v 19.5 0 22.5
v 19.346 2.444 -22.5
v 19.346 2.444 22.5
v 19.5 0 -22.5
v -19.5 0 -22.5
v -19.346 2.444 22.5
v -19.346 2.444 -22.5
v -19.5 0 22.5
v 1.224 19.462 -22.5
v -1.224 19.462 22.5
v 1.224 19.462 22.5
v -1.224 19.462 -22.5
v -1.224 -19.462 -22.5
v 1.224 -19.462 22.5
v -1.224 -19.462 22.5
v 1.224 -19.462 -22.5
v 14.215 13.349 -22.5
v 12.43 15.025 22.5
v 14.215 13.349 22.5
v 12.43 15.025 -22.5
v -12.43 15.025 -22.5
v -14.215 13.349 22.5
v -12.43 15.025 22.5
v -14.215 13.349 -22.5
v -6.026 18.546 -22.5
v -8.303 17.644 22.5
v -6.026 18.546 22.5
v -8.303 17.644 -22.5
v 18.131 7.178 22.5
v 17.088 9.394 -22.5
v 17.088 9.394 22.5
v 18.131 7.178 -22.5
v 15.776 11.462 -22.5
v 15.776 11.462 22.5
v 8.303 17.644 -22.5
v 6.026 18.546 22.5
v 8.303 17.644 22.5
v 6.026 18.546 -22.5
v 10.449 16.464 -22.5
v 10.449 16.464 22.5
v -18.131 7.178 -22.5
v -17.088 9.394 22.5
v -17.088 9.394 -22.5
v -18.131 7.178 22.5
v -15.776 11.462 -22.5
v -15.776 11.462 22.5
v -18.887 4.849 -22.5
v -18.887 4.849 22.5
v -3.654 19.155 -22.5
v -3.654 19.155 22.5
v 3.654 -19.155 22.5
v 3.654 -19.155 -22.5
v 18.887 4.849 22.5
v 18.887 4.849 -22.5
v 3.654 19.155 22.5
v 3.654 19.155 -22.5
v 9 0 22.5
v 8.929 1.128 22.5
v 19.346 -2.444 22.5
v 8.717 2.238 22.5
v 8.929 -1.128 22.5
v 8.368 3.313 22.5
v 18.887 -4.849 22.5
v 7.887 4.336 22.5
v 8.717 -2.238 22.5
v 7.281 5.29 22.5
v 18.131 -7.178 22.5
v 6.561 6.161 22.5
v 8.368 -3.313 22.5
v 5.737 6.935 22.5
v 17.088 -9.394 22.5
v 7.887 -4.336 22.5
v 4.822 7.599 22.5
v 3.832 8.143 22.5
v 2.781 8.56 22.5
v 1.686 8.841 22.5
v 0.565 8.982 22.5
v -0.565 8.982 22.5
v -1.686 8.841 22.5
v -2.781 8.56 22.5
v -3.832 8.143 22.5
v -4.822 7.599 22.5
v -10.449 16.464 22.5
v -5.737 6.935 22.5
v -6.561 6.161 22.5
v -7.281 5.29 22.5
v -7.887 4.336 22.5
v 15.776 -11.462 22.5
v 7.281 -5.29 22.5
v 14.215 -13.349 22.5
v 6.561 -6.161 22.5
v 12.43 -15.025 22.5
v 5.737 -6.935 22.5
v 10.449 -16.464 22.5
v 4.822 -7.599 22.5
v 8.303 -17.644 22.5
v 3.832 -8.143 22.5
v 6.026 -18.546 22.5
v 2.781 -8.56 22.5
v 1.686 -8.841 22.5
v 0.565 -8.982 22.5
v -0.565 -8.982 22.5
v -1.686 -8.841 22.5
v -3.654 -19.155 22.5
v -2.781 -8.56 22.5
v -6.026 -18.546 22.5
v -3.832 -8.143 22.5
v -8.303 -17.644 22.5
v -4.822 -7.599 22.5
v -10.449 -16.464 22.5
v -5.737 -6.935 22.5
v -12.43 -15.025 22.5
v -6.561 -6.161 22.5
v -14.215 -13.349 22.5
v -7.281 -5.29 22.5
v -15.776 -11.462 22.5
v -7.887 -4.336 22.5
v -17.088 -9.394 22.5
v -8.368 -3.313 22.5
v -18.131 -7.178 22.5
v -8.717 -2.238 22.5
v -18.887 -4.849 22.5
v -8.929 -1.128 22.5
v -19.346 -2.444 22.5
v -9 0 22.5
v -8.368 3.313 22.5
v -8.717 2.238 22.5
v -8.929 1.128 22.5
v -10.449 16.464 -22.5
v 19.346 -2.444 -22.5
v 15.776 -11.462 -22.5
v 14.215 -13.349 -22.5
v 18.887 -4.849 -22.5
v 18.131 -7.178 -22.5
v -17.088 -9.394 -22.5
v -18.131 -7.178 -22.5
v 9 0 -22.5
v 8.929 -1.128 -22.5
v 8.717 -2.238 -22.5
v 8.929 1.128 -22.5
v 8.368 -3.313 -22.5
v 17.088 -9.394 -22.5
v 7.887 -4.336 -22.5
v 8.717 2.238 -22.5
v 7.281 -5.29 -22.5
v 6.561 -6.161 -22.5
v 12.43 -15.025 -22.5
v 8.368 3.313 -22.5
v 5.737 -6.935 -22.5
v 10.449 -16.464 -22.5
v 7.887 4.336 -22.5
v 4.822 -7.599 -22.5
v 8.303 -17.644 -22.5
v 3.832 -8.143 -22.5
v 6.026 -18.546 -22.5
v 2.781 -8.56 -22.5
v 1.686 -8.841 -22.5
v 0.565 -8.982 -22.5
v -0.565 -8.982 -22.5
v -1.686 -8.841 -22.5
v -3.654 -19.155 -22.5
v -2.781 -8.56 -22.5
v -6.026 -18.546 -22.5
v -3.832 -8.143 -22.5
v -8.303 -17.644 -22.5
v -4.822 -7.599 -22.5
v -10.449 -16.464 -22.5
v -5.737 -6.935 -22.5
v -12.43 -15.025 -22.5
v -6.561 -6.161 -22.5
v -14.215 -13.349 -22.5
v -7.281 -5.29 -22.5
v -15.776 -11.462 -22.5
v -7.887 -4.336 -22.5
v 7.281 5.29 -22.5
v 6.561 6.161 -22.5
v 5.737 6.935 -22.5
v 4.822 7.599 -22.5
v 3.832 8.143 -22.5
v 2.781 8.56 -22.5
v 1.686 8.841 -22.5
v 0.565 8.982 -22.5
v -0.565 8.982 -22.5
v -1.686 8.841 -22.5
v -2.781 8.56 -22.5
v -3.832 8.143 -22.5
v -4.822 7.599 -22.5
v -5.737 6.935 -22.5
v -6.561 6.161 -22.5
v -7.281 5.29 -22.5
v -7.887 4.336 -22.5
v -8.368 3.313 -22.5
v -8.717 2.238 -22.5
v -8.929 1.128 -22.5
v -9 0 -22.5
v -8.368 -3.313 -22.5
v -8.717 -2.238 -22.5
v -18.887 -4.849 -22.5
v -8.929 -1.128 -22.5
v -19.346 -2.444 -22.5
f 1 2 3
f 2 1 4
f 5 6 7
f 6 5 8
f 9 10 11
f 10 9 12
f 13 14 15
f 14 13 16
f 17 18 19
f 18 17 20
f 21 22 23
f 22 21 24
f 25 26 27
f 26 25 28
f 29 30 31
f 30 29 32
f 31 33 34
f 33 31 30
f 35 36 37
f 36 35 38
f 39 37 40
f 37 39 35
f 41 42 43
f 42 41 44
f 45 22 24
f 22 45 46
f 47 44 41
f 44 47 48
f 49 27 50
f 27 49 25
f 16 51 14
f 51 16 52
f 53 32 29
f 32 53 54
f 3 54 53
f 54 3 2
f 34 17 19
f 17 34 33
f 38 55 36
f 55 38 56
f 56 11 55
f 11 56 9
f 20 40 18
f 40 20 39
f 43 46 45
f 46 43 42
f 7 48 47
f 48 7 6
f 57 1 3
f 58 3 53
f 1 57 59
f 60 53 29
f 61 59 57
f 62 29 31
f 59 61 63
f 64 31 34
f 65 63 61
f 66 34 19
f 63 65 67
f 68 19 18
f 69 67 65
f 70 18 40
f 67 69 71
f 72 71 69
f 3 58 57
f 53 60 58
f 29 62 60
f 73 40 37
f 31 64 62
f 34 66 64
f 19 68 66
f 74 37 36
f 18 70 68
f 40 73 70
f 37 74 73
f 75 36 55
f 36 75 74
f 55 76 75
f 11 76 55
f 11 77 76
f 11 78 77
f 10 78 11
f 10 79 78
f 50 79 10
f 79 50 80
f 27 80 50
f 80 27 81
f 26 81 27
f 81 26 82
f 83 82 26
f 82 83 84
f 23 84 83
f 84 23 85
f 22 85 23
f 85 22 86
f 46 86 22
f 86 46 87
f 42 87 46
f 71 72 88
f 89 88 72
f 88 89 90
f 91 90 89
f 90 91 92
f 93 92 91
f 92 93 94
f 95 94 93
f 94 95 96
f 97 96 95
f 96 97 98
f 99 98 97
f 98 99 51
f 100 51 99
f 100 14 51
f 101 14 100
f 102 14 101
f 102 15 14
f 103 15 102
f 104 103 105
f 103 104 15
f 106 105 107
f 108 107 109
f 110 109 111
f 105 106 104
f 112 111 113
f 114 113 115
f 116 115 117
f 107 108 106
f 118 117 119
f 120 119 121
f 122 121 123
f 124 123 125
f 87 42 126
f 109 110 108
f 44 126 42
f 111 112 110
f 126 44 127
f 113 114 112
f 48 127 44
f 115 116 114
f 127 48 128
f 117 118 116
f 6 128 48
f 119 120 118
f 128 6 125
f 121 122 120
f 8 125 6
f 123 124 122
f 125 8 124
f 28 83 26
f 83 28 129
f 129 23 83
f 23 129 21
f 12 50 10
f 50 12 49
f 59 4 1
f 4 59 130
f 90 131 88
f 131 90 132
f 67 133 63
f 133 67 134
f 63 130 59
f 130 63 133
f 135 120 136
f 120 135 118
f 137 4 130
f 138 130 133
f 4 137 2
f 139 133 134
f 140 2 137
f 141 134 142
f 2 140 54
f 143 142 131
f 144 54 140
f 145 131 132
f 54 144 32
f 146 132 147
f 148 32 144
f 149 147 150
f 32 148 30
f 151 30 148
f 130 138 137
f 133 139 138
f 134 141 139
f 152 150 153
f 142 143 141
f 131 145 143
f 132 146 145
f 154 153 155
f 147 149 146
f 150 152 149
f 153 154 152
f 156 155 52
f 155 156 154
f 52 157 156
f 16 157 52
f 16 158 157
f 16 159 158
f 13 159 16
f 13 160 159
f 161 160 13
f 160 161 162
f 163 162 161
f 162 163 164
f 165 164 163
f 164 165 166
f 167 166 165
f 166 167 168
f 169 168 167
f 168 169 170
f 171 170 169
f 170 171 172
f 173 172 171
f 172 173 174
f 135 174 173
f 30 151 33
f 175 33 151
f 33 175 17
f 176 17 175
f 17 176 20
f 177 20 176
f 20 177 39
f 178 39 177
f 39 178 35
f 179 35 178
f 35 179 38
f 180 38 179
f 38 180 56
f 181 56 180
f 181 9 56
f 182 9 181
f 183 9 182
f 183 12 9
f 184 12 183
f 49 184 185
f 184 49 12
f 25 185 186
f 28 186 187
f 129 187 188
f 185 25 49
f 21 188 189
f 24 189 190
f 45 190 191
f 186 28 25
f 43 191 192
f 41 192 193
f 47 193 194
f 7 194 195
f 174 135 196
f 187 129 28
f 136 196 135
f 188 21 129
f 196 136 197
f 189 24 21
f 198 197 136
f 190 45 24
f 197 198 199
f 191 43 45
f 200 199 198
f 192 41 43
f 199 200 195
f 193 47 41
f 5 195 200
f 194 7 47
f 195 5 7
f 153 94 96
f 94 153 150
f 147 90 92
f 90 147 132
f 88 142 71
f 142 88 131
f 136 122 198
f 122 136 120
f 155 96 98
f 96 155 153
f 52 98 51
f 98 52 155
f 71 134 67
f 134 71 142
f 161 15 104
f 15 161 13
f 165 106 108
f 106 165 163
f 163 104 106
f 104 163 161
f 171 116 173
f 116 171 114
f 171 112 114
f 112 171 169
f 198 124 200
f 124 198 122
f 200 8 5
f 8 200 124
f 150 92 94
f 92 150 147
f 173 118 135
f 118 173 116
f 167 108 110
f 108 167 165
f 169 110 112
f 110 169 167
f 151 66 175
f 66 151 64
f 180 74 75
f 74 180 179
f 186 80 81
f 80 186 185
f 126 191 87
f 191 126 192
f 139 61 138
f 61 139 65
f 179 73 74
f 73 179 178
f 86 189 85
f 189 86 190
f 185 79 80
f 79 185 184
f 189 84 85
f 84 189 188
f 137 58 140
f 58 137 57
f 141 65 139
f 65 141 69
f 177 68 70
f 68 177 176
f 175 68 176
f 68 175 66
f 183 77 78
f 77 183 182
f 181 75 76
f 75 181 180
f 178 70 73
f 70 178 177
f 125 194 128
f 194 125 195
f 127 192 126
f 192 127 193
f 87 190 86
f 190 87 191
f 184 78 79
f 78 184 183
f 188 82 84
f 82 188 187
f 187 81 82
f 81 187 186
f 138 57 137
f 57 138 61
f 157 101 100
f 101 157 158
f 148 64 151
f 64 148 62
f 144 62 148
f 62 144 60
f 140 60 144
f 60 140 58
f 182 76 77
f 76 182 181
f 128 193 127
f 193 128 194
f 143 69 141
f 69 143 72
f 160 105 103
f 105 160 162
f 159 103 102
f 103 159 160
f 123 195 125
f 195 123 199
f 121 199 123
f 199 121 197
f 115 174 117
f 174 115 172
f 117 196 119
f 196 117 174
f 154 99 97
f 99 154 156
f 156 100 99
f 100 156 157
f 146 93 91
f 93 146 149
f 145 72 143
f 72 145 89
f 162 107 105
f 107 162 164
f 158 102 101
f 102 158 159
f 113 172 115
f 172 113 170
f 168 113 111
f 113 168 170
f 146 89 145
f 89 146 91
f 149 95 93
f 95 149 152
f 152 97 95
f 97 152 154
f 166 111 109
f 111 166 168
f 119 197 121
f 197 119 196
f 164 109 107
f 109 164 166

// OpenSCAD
$fn = 50;


difference() {
	union() {
		translate(v = [0, 0, -22.5000000000]) {
			cylinder(h = 45, r = 19.5000000000);
		}
	}
	union() {
		translate(v = [0, 0, -100.0000000000]) {
			cylinder(h = 200, r = 9);
		}
	}
}
